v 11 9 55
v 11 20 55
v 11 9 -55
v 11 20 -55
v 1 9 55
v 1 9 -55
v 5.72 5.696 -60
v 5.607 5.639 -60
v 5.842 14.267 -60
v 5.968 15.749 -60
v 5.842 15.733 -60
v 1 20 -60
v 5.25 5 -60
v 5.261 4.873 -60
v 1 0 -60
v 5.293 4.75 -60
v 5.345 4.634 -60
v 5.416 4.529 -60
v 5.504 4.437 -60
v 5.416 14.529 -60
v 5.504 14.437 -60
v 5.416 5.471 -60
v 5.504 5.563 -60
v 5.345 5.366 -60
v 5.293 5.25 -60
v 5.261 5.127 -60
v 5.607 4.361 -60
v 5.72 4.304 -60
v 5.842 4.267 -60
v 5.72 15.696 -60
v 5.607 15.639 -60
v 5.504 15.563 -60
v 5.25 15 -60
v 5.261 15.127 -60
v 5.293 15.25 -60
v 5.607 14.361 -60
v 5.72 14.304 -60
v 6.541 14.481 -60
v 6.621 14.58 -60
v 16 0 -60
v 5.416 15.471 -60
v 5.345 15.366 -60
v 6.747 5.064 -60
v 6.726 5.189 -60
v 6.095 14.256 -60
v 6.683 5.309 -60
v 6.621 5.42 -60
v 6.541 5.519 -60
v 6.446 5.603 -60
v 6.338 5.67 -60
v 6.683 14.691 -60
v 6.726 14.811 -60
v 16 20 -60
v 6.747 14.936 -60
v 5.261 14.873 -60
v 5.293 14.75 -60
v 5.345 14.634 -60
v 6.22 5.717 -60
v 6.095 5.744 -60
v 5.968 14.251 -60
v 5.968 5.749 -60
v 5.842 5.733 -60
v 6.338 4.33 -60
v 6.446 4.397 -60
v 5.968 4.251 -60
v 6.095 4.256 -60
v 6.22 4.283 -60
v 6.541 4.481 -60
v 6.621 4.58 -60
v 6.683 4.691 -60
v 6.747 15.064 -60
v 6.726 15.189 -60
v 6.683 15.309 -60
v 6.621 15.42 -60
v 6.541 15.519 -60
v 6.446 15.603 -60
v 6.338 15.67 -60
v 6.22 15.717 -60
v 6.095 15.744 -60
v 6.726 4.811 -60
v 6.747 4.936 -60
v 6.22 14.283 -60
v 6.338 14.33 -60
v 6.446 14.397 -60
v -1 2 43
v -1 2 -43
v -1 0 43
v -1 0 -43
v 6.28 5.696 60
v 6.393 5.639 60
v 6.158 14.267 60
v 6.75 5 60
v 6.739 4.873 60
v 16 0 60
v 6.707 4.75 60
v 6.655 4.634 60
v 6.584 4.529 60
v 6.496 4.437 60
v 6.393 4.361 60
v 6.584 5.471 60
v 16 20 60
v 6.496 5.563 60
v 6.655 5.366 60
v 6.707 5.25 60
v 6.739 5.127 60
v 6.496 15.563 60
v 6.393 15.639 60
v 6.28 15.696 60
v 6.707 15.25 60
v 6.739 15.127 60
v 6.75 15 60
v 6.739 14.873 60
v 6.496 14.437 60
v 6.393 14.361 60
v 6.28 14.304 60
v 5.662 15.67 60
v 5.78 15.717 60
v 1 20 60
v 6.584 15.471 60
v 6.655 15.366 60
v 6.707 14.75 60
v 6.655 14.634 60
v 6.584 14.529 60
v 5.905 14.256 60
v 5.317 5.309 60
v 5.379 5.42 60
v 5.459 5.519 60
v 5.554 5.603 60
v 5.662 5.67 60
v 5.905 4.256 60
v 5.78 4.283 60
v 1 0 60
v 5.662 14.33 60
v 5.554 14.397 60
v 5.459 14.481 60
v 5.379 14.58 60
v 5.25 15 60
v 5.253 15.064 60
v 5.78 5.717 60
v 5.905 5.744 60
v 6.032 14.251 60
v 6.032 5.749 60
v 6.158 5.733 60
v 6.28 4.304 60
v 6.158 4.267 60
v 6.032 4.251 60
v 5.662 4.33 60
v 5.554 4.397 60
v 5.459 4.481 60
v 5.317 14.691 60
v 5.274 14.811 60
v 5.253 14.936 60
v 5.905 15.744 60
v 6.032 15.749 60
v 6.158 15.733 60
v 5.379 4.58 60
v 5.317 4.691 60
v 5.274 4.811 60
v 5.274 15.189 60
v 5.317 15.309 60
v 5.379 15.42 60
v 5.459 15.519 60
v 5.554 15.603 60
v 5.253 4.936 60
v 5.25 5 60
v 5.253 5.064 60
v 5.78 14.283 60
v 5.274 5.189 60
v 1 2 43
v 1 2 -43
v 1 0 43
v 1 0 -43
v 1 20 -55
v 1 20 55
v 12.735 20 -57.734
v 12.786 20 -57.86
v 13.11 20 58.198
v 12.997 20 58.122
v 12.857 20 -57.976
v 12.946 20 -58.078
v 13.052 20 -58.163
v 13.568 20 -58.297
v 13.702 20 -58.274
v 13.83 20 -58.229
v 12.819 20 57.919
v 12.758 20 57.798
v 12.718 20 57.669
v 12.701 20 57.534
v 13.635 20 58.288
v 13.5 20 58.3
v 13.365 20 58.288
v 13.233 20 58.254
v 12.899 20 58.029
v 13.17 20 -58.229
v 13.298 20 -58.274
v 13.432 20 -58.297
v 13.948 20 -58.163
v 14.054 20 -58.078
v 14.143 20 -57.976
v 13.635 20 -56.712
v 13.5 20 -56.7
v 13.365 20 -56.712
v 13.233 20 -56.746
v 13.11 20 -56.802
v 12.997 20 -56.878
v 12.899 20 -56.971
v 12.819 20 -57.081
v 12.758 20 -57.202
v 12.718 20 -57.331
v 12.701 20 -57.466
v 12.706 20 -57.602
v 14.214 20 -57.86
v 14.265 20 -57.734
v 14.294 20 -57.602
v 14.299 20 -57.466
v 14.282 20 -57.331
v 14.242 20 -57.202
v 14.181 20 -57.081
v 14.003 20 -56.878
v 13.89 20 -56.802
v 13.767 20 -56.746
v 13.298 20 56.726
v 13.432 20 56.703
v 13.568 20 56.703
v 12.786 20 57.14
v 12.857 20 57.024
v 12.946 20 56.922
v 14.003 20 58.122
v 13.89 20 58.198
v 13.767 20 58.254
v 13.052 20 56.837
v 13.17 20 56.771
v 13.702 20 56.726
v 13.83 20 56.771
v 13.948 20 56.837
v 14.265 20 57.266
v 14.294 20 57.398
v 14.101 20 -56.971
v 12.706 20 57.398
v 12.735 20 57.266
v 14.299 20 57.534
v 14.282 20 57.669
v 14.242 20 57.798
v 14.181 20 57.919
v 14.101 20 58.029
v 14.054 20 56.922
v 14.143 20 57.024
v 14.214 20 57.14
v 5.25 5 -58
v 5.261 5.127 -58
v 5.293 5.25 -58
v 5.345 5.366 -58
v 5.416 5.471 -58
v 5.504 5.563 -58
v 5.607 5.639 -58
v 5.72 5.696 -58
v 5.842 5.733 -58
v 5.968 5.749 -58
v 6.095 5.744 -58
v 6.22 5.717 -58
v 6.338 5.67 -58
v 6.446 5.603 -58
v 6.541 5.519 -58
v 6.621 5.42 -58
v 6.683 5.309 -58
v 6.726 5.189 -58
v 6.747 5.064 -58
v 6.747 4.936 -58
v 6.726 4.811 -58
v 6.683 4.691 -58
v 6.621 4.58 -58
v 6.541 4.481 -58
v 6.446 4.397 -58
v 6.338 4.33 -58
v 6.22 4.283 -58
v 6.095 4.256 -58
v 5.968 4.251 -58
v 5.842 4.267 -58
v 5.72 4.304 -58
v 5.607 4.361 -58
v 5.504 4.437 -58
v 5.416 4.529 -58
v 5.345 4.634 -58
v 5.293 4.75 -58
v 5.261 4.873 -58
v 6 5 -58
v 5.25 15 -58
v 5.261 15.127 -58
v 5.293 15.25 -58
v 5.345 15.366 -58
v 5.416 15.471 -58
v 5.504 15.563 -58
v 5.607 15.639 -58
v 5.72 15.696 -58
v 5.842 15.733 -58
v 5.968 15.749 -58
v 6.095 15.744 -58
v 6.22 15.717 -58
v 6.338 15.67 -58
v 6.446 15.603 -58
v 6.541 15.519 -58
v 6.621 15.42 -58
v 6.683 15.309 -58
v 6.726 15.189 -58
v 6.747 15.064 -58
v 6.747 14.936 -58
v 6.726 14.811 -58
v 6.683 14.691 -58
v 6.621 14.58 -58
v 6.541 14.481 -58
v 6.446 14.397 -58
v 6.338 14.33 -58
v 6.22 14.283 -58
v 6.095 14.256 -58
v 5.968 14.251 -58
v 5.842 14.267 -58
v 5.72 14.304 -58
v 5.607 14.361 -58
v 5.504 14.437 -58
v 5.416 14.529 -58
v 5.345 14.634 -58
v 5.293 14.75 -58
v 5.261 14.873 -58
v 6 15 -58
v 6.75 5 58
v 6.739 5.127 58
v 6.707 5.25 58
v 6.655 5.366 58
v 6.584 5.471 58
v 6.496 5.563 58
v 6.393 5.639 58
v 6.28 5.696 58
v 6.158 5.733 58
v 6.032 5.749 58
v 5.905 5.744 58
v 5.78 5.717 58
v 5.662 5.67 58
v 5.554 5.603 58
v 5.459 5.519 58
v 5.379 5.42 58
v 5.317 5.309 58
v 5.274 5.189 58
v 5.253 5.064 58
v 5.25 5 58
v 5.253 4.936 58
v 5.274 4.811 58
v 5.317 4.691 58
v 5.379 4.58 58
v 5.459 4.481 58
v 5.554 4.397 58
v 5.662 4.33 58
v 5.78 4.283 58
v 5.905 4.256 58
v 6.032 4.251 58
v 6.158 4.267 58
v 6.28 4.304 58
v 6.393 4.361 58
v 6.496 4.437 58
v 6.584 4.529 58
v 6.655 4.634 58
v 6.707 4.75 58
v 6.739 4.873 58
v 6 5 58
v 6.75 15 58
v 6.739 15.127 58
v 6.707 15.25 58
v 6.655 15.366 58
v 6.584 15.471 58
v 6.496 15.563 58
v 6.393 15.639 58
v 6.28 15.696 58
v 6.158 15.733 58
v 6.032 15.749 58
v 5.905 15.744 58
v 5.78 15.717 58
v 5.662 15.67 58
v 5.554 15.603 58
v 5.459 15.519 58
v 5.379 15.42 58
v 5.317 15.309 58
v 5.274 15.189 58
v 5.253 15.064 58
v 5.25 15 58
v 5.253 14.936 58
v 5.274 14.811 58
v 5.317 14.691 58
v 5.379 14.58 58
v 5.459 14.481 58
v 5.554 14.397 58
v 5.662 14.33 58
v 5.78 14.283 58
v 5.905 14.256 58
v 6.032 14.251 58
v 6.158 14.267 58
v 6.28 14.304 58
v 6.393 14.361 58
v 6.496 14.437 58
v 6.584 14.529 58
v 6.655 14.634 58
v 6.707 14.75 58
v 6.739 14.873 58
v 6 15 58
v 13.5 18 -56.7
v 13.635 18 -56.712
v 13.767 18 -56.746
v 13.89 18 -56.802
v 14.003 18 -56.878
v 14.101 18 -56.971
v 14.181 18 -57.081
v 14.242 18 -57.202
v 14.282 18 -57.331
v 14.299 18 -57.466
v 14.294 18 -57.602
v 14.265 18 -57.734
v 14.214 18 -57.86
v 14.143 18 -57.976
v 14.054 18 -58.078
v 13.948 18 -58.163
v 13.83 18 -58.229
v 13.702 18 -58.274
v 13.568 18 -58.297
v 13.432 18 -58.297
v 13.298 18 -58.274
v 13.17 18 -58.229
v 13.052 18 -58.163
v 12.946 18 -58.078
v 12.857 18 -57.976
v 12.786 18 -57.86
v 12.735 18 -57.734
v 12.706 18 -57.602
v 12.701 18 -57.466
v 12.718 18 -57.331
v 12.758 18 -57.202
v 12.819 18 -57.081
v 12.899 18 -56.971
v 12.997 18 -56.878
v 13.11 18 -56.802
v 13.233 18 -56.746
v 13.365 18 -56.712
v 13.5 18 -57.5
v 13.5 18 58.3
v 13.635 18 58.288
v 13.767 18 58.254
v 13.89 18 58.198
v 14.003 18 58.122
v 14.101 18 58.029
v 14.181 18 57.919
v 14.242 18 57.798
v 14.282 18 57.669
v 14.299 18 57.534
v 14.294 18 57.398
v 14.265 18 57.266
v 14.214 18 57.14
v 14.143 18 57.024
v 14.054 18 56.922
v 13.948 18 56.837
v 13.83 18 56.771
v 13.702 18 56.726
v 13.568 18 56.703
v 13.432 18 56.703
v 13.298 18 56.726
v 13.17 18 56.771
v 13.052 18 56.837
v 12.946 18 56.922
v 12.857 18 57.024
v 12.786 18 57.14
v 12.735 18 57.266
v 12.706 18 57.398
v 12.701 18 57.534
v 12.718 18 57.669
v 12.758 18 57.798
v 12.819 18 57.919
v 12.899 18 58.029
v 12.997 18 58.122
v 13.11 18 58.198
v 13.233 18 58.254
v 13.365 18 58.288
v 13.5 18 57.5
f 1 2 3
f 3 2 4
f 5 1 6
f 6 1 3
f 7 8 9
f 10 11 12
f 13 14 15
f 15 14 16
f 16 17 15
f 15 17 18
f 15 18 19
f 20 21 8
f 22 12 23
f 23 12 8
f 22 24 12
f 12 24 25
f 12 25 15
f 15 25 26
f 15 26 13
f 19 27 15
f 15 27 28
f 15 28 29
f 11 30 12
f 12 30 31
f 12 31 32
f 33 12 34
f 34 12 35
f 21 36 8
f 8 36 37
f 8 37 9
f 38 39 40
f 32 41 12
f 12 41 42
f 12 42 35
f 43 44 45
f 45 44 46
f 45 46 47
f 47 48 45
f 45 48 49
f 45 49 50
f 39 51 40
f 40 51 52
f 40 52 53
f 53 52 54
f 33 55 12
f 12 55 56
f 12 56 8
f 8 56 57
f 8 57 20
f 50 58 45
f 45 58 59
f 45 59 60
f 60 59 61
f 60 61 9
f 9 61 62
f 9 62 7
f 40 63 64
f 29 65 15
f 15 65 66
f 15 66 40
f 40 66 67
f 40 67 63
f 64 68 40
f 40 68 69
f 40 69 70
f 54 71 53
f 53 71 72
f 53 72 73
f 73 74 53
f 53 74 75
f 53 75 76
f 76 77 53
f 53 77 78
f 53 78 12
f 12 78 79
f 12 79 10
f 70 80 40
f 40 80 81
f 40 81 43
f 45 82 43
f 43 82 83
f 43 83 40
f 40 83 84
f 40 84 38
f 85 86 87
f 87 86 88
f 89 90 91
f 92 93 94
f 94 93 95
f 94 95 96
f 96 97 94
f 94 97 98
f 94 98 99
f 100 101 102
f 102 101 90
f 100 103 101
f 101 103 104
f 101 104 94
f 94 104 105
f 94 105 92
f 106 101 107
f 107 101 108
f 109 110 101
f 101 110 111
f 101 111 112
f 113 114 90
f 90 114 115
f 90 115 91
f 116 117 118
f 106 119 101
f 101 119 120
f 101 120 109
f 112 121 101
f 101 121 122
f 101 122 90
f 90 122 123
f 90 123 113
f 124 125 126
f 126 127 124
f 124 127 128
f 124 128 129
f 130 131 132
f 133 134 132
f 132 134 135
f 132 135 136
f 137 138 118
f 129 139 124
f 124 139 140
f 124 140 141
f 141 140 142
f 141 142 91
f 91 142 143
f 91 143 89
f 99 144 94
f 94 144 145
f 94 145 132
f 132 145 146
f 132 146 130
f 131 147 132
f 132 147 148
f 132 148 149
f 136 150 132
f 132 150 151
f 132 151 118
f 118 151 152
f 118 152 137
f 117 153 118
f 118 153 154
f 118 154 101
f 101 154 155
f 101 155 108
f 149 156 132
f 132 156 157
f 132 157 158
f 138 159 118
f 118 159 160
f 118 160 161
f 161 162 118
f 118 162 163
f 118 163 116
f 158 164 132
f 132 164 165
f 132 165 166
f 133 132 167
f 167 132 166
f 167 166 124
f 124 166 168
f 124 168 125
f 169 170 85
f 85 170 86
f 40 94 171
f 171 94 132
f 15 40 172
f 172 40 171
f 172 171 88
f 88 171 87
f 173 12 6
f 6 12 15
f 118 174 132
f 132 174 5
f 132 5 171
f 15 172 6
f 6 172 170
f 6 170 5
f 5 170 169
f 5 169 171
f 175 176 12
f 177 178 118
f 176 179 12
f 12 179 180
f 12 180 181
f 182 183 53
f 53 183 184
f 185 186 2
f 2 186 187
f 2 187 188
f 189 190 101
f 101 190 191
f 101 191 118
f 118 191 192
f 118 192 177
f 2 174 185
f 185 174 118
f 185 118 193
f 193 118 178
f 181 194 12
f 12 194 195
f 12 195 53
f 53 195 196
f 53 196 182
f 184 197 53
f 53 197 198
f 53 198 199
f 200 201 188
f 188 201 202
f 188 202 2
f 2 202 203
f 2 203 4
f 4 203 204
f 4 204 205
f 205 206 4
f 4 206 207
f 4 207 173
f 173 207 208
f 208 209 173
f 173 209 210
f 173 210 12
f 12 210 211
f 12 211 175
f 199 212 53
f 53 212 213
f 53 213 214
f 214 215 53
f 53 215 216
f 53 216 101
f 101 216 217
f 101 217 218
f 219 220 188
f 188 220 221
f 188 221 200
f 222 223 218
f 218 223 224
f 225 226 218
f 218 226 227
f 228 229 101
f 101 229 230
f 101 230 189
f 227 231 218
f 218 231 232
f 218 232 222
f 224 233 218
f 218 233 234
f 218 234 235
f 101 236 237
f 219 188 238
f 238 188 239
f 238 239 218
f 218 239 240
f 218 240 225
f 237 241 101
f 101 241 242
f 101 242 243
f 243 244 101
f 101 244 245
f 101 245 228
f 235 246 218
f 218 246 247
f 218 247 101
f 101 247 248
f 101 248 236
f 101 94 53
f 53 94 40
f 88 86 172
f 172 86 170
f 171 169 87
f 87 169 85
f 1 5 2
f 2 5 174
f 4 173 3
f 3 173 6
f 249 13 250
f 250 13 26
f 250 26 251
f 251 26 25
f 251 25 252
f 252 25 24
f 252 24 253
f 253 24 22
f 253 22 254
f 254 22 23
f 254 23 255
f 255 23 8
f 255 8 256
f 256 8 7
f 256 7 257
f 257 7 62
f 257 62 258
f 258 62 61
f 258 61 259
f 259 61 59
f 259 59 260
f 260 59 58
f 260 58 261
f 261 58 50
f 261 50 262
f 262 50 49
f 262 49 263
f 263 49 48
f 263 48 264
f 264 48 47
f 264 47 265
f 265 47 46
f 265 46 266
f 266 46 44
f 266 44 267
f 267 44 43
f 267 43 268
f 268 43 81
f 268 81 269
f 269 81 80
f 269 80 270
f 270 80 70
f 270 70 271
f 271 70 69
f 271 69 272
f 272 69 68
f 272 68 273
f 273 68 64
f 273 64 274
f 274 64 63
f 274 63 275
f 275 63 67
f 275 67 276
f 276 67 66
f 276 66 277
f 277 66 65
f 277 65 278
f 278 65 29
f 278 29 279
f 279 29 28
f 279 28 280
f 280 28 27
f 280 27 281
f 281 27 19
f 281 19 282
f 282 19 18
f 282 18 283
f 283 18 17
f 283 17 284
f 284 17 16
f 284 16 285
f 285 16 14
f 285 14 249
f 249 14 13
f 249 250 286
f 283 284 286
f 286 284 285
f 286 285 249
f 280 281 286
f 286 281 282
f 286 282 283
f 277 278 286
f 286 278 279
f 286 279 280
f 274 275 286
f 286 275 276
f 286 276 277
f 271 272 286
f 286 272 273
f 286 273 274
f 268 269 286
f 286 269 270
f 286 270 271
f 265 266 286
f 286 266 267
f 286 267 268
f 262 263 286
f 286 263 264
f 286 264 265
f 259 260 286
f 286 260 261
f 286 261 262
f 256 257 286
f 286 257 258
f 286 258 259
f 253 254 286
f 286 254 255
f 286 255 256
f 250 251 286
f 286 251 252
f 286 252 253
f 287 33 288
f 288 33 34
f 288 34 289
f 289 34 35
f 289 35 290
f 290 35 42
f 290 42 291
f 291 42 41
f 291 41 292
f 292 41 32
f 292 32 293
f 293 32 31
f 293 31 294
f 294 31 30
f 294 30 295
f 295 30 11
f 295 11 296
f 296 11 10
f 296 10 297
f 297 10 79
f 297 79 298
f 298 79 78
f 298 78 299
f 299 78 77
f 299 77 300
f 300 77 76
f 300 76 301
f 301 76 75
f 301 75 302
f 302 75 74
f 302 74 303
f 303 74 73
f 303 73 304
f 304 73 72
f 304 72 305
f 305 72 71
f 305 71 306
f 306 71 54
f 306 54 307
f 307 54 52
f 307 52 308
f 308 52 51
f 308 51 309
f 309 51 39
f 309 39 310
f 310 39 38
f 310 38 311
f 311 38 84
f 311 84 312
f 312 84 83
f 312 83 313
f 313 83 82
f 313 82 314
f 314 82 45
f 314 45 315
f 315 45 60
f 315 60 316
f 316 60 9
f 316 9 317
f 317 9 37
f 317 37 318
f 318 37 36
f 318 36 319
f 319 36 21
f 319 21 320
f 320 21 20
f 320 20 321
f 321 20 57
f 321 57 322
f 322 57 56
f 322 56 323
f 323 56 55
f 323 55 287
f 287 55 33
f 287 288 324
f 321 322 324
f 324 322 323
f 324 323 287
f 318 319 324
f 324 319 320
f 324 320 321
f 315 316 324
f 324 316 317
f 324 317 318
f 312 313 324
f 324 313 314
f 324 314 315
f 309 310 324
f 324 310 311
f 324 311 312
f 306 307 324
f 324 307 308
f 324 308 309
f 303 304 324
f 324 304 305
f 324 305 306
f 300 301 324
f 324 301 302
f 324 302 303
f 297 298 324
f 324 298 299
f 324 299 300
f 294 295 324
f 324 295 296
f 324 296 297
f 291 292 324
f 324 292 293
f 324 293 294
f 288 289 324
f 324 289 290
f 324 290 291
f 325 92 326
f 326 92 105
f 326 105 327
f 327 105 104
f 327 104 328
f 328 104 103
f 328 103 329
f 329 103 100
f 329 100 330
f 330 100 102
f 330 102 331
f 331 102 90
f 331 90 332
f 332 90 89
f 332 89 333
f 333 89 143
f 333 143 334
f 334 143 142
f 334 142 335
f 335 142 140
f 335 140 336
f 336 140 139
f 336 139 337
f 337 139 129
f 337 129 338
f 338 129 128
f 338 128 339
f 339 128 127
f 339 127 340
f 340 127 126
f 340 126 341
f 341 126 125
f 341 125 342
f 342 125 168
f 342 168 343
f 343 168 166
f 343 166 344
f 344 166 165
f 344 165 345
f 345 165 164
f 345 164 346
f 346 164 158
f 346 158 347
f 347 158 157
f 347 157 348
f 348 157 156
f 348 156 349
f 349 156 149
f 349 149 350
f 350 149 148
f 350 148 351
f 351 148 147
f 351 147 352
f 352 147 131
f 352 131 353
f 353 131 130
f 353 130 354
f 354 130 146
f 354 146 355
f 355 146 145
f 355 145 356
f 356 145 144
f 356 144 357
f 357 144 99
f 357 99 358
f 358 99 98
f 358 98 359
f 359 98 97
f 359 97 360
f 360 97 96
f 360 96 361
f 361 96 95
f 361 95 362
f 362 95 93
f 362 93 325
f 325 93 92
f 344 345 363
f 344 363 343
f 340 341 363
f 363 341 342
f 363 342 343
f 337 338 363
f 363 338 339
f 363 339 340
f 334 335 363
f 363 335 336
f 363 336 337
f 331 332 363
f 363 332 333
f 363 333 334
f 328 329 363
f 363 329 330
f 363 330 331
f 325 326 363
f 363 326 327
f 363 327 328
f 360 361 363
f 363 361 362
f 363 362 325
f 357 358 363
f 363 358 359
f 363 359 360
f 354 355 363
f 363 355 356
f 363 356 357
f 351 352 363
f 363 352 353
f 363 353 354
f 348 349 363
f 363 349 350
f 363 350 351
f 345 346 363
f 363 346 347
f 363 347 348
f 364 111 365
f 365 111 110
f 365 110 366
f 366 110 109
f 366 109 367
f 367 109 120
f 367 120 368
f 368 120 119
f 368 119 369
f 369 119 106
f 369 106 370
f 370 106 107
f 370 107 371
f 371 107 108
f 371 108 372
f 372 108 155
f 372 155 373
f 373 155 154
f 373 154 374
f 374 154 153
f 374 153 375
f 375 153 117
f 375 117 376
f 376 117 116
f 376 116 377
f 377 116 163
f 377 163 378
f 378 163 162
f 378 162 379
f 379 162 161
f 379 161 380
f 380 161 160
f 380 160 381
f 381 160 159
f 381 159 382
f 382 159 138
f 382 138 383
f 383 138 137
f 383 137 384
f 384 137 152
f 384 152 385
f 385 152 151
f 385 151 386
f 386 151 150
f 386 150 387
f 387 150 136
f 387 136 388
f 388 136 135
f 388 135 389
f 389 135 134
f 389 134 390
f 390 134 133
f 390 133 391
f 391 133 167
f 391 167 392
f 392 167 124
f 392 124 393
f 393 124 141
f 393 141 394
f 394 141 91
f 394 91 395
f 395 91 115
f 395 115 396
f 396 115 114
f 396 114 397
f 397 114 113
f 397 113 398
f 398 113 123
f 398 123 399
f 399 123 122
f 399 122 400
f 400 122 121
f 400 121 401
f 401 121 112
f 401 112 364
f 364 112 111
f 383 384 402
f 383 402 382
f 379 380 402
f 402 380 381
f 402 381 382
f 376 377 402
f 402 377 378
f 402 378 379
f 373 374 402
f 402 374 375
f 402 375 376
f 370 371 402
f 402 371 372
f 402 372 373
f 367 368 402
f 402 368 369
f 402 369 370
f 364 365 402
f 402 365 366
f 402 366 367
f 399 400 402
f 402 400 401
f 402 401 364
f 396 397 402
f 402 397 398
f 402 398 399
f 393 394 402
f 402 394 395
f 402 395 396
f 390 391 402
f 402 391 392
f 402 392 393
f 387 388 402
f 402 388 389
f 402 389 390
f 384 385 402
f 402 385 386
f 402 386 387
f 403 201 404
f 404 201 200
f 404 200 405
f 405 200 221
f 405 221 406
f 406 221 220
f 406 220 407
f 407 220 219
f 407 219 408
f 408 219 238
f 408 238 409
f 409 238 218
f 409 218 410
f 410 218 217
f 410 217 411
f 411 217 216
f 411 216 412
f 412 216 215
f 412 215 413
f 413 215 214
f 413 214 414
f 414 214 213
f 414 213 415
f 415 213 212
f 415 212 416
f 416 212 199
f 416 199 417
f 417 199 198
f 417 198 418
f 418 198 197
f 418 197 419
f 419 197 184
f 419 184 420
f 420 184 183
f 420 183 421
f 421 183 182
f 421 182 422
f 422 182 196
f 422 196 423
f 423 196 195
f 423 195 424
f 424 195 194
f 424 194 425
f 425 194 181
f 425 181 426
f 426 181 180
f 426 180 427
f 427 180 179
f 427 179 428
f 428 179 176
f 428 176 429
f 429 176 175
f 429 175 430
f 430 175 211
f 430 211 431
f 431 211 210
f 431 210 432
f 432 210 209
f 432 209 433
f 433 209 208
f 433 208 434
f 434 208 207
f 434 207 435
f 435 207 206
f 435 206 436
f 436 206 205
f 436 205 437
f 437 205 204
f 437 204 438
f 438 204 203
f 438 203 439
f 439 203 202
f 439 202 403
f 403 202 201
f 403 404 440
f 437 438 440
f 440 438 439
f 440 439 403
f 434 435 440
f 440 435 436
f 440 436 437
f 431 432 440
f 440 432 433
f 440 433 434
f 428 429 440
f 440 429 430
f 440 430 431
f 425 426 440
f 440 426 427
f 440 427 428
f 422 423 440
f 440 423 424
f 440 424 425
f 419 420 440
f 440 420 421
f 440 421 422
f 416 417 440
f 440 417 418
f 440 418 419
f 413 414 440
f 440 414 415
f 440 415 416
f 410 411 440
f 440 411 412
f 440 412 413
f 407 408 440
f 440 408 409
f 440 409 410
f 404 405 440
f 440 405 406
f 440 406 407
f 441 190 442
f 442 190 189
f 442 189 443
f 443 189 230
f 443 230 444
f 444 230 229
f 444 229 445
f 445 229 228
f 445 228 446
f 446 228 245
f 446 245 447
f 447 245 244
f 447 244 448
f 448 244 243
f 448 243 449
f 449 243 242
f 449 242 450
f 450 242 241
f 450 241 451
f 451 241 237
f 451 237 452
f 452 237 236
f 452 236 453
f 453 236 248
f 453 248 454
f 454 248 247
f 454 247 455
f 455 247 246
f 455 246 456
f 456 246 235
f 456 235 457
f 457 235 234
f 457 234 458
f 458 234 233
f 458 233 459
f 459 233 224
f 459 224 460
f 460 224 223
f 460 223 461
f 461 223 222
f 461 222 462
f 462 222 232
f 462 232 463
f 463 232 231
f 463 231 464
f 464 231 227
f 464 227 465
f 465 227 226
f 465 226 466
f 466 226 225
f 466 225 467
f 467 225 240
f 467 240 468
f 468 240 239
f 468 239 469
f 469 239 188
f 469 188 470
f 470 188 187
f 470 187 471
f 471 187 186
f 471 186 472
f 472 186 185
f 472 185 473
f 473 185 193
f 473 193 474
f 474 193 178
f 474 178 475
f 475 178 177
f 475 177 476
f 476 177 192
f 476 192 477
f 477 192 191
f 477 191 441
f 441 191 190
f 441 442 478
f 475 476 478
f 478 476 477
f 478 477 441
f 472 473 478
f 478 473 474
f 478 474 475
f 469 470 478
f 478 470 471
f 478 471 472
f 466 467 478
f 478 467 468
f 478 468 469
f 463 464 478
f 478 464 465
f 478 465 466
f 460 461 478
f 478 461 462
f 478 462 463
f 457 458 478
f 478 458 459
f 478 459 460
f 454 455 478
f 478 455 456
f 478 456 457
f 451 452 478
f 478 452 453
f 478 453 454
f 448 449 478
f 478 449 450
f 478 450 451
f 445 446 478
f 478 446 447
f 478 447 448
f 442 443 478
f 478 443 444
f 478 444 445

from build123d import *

# Parameters (mm, degrees)
SKETCH_1_W          = 2
SKETCH_1_H          = 120
EXTRUDE_1_DEPTH     = 2
SKETCH_3_W          = 120
SKETCH_3_H          = 20
EXTRUDE_3_DEPTH     = 15
SKETCH_4_W          = 10
SKETCH_4_H          = 11
CUT_EXTRUDE_1_DEPTH = 123.702893201
SKETCH_5_W          = 2
SKETCH_5_H          = 17
CUT_EXTRUDE_2_DEPTH = 66.238025721
SKETCH_6_W          = 15
SKETCH_6_H          = 5
EXTRUDE_4_DEPTH     = 11
SKETCH_7_R          = 0.75
CUT_EXTRUDE_3_DEPTH = 2
CUT_EXTRUDE_START   = -118
SKETCH_7_3_R        = 0.75
CUT_EXTRUDE_4_DEPTH = 2
SKETCH_8_R          = 0.8
CUT_EXTRUDE_5_DEPTH = 2


with BuildPart() as part:
    # 草图1 → 凸台-拉伸1 (new body)
    with BuildSketch(Plane(origin=(0, 0, 0), x_dir=(1, 0, 0), z_dir=(0, 1, 0))):
        Rectangle(SKETCH_1_W, SKETCH_1_H)
    extrude(amount=EXTRUDE_1_DEPTH)

    # 草图3 → 凸台-拉伸3 (add)
    with BuildSketch(Plane(origin=(1, 0, 0), x_dir=(0, 0, -1), z_dir=(1, 0, 0))):
        with Locations((0, 10)):
            Rectangle(SKETCH_3_W, SKETCH_3_H)
    extrude(amount=EXTRUDE_3_DEPTH)

    # 草图4 → 切除-拉伸1 (cut, through all)
    with BuildSketch(Plane.XY.offset(60)):
        with Locations((6, 14.5)):
            Rectangle(SKETCH_4_W, SKETCH_4_H)
    extrude(amount=-CUT_EXTRUDE_1_DEPTH, mode=Mode.SUBTRACT)

    # 草图5 → 切除-拉伸2 (cut, through all)
    with BuildSketch(Plane.XZ):
        with Locations((0, 51.5)):
            Rectangle(SKETCH_5_W, SKETCH_5_H)
        with Locations((0, -51.5)):
            Rectangle(SKETCH_5_W, SKETCH_5_H)
    extrude(amount=-CUT_EXTRUDE_2_DEPTH, mode=Mode.SUBTRACT)

    # 草图6 → 凸台-拉伸4 (add)
    with BuildSketch(Plane(origin=(0, 9, 0), x_dir=(1, 0, 0), z_dir=(0, 1, 0))):
        with Locations((8.5, -57.5)):
            Rectangle(SKETCH_6_W, SKETCH_6_H)
        with Locations((8.5, 57.5)):
            Rectangle(SKETCH_6_W, SKETCH_6_H)
    extrude(amount=EXTRUDE_4_DEPTH)

    # 草图7 → 切除-拉伸3 (cut)
    with BuildSketch(Plane(origin=(0, 0, -60), x_dir=(-1, 0, 0), z_dir=(0, 0, -1))):
        with Locations((-6, 15)):
            Circle(SKETCH_7_R)
        with Locations((-6, 5)):
            Circle(SKETCH_7_R)
    extrude(amount=-CUT_EXTRUDE_3_DEPTH, mode=Mode.SUBTRACT)

    # 草图7<3> → 切除-拉伸4 (cut)
    with BuildSketch(Plane(origin=(0, 0, -60), x_dir=(-1, 0, 0), z_dir=(0, 0, -1)).offset(CUT_EXTRUDE_START)):
        with Locations((-6, 15)):
            Circle(SKETCH_7_3_R)
        with Locations((-6, 5)):
            Circle(SKETCH_7_3_R)
    extrude(amount=-CUT_EXTRUDE_4_DEPTH, mode=Mode.SUBTRACT)

    # 草图8 → 切除-拉伸5 (cut)
    with BuildSketch(Plane(origin=(0, 20, 0), x_dir=(1, 0, 0), z_dir=(0, 1, 0))):
        with Locations(Location((13.5, -57.5, 0), (0, 0, 270))):
            Circle(SKETCH_8_R)
        with Locations(Location((13.5, 57.5, 0), (0, 0, 270))):
            Circle(SKETCH_8_R)
    extrude(amount=-CUT_EXTRUDE_5_DEPTH, mode=Mode.SUBTRACT)


solid = part.part
